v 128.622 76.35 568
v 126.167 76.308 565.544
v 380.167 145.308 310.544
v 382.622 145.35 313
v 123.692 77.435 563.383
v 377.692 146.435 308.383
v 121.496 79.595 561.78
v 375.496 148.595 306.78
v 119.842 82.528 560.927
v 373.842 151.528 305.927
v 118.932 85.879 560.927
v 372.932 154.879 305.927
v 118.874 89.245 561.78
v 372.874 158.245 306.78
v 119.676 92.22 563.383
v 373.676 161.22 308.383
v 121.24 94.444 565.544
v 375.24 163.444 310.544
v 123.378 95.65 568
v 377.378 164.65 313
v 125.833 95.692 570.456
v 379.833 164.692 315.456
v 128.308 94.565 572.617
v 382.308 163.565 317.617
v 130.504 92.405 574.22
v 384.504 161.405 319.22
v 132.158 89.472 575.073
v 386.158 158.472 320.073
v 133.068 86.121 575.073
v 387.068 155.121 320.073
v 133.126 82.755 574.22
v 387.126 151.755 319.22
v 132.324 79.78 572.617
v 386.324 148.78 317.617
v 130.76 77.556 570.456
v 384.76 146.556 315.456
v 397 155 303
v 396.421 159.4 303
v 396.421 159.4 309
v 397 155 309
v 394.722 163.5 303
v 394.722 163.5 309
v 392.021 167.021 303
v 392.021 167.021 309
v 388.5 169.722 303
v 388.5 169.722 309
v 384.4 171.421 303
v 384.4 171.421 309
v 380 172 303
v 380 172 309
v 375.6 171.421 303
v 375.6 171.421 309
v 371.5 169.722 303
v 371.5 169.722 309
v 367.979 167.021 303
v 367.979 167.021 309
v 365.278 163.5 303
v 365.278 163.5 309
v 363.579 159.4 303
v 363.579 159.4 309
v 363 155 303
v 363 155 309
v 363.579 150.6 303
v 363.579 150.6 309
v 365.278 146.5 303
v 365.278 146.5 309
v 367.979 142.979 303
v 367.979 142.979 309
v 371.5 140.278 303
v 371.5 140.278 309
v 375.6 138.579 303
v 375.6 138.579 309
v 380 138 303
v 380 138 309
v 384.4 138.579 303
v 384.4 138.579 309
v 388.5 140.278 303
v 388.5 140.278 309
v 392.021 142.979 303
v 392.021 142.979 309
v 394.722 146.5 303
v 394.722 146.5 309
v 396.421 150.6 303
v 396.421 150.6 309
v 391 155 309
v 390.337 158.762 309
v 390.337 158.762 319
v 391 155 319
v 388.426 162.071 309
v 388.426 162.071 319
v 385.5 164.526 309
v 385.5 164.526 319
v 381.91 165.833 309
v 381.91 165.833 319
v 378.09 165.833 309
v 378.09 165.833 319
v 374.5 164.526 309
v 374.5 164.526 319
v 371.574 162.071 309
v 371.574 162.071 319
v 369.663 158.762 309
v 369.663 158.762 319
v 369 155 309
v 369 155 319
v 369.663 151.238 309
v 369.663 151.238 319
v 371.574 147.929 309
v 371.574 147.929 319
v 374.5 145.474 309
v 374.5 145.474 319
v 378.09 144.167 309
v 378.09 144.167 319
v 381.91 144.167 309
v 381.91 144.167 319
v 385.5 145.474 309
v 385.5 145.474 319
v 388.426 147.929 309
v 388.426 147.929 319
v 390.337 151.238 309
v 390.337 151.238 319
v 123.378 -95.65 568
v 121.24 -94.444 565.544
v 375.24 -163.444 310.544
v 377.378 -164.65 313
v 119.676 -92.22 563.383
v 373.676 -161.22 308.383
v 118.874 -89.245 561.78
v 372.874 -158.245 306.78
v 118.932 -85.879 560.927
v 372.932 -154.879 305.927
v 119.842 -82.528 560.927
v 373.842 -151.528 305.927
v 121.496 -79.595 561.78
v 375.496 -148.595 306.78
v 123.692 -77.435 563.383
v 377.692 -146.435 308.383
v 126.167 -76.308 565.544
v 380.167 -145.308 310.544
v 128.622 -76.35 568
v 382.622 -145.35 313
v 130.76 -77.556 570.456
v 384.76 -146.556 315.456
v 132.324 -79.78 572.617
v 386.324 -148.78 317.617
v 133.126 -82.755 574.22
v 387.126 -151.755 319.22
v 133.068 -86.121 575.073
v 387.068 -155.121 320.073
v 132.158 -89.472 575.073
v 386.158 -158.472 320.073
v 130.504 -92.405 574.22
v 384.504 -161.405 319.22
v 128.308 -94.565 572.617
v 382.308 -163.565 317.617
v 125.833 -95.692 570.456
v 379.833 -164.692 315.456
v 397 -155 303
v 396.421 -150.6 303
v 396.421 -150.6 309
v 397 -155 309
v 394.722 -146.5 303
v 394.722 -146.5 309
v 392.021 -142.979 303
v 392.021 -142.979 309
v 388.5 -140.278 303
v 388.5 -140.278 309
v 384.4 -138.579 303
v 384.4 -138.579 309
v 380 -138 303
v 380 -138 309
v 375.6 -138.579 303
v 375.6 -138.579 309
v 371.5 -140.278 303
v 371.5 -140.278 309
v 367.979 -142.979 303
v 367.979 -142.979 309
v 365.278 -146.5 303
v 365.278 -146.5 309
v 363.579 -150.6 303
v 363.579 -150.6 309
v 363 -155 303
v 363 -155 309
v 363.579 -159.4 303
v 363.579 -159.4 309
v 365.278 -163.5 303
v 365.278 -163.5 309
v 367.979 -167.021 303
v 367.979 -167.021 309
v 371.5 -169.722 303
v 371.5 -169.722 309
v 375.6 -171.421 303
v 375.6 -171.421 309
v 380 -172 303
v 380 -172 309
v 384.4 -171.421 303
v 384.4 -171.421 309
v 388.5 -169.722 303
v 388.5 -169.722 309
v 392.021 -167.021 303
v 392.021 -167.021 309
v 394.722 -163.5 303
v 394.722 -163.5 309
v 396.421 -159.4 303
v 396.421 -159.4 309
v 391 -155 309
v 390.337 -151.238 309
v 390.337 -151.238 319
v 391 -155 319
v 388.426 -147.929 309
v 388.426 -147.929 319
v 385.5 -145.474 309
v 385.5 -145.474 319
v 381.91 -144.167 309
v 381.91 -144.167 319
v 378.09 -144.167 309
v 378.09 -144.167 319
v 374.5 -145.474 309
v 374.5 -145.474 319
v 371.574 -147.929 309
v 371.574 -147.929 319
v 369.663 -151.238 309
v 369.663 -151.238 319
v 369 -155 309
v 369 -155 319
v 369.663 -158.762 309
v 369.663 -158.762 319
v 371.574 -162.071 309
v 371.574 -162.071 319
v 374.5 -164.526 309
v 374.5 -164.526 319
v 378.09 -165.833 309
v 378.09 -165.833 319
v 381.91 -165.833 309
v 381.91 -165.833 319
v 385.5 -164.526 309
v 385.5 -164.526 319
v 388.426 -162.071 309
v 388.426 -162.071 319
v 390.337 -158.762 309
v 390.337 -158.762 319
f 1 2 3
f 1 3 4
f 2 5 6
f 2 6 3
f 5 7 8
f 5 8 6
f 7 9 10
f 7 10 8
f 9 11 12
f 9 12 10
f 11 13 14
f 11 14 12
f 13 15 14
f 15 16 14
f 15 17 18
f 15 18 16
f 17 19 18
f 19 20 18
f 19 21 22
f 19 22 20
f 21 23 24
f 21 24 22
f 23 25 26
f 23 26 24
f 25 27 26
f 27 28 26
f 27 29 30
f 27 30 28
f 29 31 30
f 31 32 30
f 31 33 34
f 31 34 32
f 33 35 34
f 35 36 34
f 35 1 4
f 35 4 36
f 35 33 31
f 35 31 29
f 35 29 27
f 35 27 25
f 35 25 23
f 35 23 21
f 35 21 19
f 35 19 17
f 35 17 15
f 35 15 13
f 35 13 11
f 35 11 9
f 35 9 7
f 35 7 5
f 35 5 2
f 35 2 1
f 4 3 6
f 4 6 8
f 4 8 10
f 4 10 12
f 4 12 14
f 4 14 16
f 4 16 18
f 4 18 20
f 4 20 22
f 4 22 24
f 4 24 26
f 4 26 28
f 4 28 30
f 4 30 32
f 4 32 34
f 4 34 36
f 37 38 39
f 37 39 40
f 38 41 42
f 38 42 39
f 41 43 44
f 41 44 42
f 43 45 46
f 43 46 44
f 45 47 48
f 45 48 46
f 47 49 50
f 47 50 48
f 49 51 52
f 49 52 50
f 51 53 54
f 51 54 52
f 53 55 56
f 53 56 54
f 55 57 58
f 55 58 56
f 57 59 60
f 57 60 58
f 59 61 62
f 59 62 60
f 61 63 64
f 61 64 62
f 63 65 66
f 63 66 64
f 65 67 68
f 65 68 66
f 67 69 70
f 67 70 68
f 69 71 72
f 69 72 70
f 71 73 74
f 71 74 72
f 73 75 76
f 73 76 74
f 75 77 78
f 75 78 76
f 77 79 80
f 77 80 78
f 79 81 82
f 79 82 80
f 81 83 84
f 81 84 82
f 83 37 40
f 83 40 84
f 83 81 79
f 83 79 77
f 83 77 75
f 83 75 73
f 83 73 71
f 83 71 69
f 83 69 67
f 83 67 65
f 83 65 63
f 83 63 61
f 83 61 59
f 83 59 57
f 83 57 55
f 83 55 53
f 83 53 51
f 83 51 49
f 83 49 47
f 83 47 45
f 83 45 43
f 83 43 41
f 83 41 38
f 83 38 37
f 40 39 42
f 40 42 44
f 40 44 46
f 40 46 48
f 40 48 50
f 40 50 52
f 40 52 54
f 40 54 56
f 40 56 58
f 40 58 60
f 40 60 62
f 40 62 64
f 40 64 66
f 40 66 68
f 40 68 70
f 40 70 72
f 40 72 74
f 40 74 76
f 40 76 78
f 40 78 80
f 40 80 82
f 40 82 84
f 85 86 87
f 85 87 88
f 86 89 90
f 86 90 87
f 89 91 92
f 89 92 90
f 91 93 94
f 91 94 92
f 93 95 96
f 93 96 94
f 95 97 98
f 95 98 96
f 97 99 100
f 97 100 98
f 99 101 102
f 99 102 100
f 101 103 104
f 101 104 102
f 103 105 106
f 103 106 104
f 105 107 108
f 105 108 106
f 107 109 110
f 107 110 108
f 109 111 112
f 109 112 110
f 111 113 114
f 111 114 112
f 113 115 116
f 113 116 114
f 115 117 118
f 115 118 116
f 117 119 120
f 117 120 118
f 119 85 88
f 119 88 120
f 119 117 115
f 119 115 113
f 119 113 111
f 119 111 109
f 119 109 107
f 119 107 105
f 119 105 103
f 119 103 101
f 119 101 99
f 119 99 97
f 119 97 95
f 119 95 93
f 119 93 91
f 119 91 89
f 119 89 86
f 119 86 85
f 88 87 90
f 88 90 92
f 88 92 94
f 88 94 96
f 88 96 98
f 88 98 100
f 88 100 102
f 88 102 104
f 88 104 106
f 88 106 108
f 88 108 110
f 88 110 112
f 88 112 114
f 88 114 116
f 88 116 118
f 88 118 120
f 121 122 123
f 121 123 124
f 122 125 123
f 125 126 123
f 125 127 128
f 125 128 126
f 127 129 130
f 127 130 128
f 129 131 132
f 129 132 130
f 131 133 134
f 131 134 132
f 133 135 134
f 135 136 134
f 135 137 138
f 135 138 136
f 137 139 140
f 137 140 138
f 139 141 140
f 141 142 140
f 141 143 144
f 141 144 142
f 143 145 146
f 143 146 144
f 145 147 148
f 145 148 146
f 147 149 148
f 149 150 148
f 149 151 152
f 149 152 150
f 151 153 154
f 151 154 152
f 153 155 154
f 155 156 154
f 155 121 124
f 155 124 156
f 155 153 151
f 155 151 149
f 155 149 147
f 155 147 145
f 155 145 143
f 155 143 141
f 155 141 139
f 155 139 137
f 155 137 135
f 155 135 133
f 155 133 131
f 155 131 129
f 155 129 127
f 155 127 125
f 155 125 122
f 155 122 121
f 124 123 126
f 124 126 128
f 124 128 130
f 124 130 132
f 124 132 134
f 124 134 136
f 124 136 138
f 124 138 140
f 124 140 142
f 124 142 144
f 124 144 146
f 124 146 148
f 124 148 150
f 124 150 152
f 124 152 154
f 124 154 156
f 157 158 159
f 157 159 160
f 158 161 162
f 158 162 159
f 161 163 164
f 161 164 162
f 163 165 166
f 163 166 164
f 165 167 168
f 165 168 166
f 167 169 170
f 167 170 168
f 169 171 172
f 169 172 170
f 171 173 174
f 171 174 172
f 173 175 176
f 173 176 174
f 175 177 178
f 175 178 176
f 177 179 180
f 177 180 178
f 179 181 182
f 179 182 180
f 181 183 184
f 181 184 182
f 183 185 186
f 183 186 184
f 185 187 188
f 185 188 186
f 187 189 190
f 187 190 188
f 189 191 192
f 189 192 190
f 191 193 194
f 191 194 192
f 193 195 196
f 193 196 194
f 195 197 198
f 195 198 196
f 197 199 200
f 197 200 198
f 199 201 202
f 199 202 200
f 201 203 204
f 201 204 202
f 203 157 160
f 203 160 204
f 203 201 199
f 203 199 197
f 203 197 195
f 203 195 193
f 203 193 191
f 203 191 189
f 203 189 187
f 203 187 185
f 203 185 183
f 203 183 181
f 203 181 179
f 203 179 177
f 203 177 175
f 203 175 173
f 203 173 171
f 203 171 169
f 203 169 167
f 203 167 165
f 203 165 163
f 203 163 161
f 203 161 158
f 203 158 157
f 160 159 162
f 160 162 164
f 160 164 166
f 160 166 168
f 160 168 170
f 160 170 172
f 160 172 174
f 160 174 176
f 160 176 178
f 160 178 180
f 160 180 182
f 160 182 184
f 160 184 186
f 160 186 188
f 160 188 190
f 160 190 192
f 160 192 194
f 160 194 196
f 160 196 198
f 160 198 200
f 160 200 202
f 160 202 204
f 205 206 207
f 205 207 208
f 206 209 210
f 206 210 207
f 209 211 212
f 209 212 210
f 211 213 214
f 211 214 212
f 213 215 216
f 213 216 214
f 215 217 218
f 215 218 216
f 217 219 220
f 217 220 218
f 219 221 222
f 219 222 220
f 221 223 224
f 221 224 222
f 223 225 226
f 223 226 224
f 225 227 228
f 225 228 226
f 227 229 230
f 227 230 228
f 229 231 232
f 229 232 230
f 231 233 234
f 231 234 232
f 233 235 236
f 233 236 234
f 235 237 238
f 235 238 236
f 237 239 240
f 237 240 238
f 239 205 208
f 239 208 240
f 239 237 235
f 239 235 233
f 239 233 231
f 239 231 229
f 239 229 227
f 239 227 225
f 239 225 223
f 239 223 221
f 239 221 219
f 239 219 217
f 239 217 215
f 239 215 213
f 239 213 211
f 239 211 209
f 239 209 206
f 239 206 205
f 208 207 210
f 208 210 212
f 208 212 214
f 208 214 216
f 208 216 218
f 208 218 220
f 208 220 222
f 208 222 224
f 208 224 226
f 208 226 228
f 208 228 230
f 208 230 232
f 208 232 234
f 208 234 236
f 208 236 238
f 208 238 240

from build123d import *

# Parameters (mm, degrees)
PIPE_SKETCH_1_R     = 10
PIPE_1_DEPTH        = 366.472372765
PIPE_ROTATE_1_ANGLE = 164.859016165
PIPE_ROTATE_2_ANGLE = 43.875570355
PIPE_ROTATE_3_ANGLE = 143.476188317
EXTRUDE_START       = 303
EXTRUDE_SKETCH_1_R  = 17
EXTRUDE_1_DEPTH     = 6
EXTRUDE_START_2     = 309
EXTRUDE_SKETCH_2_R  = 11
EXTRUDE_2_DEPTH     = 10
PIPE_SKETCH_2_R     = 10
PIPE_2_DEPTH        = 366.472372765
PIPE_ROTATE_4_ANGLE = 164.859016165
PIPE_ROTATE_5_ANGLE = 43.875570355
PIPE_ROTATE_6_ANGLE = 143.476188317
EXTRUDE_SKETCH_3_R  = 17
EXTRUDE_3_DEPTH     = 6
EXTRUDE_SKETCH_4_R  = 11
EXTRUDE_4_DEPTH     = 10


with BuildPart() as part:
    # Pipe sketch 1 → Pipe 1 (new body)
    with BuildSketch(Plane.XY):
        Circle(PIPE_SKETCH_1_R)
    extrude(amount=PIPE_1_DEPTH)


with BuildPart() as part_1:
    # Pipe rotate 1: moved
    add(part.part.rotate(Axis((0, 0, 0), (-1, 0, 0)), PIPE_ROTATE_1_ANGLE))


with BuildPart() as part_2:
    # Pipe rotate 2: moved
    add(part_1.part.rotate(Axis((0, 0, 0), (0, 1, 0)), PIPE_ROTATE_2_ANGLE))


with BuildPart() as part_3:
    # Pipe rotate 3: moved
    add(part_2.part.rotate(Axis((0, 0, 0), (0, 0, -1)), PIPE_ROTATE_3_ANGLE))


with BuildPart() as part_4:
    # Pipe place 1: moved
    add(part_3.part.moved(Location((126, 86, 568))))


with BuildPart() as body_2:
    # Extrude sketch 1 → Extrude 1 (new body)
    with BuildSketch(Plane.XY.offset(EXTRUDE_START)):
        with Locations((380, 155)):
            Circle(EXTRUDE_SKETCH_1_R)
    extrude(amount=EXTRUDE_1_DEPTH)


with BuildPart() as body_3:
    # Extrude sketch 2 → Extrude 2 (new body)
    with BuildSketch(Plane.XY.offset(EXTRUDE_START_2)):
        with Locations((380, 155)):
            Circle(EXTRUDE_SKETCH_2_R)
    extrude(amount=EXTRUDE_2_DEPTH)


with BuildPart() as body_4:
    # Pipe sketch 2 → Pipe 2 (new body)
    with BuildSketch(Plane.XY):
        Circle(PIPE_SKETCH_2_R)
    extrude(amount=PIPE_2_DEPTH)


with BuildPart() as body_4_1:
    # Pipe rotate 4: moved
    add(body_4.part.rotate(Axis((0, 0, 0), (1, 0, 0)), PIPE_ROTATE_4_ANGLE))


with BuildPart() as body_4_2:
    # Pipe rotate 5: moved
    add(body_4_1.part.rotate(Axis((0, 0, 0), (0, 1, 0)), PIPE_ROTATE_5_ANGLE))


with BuildPart() as body_4_3:
    # Pipe rotate 6: moved
    add(body_4_2.part.rotate(Axis((0, 0, 0), (0, 0, 1)), PIPE_ROTATE_6_ANGLE))


with BuildPart() as body_4_4:
    # Pipe place 2: moved
    add(body_4_3.part.moved(Location((126, -86, 568))))


with BuildPart() as body_5:
    # Extrude sketch 3 → Extrude 3 (new body)
    with BuildSketch(Plane.XY.offset(EXTRUDE_START)):
        with Locations((380, -155)):
            Circle(EXTRUDE_SKETCH_3_R)
    extrude(amount=EXTRUDE_3_DEPTH)


with BuildPart() as body_6:
    # Extrude sketch 4 → Extrude 4 (new body)
    with BuildSketch(Plane.XY.offset(EXTRUDE_START_2)):
        with Locations((380, -155)):
            Circle(EXTRUDE_SKETCH_4_R)
    extrude(amount=EXTRUDE_4_DEPTH)


solid = Compound([part_4.part, body_2.part, body_3.part, body_4_4.part, body_5.part, body_6.part])
